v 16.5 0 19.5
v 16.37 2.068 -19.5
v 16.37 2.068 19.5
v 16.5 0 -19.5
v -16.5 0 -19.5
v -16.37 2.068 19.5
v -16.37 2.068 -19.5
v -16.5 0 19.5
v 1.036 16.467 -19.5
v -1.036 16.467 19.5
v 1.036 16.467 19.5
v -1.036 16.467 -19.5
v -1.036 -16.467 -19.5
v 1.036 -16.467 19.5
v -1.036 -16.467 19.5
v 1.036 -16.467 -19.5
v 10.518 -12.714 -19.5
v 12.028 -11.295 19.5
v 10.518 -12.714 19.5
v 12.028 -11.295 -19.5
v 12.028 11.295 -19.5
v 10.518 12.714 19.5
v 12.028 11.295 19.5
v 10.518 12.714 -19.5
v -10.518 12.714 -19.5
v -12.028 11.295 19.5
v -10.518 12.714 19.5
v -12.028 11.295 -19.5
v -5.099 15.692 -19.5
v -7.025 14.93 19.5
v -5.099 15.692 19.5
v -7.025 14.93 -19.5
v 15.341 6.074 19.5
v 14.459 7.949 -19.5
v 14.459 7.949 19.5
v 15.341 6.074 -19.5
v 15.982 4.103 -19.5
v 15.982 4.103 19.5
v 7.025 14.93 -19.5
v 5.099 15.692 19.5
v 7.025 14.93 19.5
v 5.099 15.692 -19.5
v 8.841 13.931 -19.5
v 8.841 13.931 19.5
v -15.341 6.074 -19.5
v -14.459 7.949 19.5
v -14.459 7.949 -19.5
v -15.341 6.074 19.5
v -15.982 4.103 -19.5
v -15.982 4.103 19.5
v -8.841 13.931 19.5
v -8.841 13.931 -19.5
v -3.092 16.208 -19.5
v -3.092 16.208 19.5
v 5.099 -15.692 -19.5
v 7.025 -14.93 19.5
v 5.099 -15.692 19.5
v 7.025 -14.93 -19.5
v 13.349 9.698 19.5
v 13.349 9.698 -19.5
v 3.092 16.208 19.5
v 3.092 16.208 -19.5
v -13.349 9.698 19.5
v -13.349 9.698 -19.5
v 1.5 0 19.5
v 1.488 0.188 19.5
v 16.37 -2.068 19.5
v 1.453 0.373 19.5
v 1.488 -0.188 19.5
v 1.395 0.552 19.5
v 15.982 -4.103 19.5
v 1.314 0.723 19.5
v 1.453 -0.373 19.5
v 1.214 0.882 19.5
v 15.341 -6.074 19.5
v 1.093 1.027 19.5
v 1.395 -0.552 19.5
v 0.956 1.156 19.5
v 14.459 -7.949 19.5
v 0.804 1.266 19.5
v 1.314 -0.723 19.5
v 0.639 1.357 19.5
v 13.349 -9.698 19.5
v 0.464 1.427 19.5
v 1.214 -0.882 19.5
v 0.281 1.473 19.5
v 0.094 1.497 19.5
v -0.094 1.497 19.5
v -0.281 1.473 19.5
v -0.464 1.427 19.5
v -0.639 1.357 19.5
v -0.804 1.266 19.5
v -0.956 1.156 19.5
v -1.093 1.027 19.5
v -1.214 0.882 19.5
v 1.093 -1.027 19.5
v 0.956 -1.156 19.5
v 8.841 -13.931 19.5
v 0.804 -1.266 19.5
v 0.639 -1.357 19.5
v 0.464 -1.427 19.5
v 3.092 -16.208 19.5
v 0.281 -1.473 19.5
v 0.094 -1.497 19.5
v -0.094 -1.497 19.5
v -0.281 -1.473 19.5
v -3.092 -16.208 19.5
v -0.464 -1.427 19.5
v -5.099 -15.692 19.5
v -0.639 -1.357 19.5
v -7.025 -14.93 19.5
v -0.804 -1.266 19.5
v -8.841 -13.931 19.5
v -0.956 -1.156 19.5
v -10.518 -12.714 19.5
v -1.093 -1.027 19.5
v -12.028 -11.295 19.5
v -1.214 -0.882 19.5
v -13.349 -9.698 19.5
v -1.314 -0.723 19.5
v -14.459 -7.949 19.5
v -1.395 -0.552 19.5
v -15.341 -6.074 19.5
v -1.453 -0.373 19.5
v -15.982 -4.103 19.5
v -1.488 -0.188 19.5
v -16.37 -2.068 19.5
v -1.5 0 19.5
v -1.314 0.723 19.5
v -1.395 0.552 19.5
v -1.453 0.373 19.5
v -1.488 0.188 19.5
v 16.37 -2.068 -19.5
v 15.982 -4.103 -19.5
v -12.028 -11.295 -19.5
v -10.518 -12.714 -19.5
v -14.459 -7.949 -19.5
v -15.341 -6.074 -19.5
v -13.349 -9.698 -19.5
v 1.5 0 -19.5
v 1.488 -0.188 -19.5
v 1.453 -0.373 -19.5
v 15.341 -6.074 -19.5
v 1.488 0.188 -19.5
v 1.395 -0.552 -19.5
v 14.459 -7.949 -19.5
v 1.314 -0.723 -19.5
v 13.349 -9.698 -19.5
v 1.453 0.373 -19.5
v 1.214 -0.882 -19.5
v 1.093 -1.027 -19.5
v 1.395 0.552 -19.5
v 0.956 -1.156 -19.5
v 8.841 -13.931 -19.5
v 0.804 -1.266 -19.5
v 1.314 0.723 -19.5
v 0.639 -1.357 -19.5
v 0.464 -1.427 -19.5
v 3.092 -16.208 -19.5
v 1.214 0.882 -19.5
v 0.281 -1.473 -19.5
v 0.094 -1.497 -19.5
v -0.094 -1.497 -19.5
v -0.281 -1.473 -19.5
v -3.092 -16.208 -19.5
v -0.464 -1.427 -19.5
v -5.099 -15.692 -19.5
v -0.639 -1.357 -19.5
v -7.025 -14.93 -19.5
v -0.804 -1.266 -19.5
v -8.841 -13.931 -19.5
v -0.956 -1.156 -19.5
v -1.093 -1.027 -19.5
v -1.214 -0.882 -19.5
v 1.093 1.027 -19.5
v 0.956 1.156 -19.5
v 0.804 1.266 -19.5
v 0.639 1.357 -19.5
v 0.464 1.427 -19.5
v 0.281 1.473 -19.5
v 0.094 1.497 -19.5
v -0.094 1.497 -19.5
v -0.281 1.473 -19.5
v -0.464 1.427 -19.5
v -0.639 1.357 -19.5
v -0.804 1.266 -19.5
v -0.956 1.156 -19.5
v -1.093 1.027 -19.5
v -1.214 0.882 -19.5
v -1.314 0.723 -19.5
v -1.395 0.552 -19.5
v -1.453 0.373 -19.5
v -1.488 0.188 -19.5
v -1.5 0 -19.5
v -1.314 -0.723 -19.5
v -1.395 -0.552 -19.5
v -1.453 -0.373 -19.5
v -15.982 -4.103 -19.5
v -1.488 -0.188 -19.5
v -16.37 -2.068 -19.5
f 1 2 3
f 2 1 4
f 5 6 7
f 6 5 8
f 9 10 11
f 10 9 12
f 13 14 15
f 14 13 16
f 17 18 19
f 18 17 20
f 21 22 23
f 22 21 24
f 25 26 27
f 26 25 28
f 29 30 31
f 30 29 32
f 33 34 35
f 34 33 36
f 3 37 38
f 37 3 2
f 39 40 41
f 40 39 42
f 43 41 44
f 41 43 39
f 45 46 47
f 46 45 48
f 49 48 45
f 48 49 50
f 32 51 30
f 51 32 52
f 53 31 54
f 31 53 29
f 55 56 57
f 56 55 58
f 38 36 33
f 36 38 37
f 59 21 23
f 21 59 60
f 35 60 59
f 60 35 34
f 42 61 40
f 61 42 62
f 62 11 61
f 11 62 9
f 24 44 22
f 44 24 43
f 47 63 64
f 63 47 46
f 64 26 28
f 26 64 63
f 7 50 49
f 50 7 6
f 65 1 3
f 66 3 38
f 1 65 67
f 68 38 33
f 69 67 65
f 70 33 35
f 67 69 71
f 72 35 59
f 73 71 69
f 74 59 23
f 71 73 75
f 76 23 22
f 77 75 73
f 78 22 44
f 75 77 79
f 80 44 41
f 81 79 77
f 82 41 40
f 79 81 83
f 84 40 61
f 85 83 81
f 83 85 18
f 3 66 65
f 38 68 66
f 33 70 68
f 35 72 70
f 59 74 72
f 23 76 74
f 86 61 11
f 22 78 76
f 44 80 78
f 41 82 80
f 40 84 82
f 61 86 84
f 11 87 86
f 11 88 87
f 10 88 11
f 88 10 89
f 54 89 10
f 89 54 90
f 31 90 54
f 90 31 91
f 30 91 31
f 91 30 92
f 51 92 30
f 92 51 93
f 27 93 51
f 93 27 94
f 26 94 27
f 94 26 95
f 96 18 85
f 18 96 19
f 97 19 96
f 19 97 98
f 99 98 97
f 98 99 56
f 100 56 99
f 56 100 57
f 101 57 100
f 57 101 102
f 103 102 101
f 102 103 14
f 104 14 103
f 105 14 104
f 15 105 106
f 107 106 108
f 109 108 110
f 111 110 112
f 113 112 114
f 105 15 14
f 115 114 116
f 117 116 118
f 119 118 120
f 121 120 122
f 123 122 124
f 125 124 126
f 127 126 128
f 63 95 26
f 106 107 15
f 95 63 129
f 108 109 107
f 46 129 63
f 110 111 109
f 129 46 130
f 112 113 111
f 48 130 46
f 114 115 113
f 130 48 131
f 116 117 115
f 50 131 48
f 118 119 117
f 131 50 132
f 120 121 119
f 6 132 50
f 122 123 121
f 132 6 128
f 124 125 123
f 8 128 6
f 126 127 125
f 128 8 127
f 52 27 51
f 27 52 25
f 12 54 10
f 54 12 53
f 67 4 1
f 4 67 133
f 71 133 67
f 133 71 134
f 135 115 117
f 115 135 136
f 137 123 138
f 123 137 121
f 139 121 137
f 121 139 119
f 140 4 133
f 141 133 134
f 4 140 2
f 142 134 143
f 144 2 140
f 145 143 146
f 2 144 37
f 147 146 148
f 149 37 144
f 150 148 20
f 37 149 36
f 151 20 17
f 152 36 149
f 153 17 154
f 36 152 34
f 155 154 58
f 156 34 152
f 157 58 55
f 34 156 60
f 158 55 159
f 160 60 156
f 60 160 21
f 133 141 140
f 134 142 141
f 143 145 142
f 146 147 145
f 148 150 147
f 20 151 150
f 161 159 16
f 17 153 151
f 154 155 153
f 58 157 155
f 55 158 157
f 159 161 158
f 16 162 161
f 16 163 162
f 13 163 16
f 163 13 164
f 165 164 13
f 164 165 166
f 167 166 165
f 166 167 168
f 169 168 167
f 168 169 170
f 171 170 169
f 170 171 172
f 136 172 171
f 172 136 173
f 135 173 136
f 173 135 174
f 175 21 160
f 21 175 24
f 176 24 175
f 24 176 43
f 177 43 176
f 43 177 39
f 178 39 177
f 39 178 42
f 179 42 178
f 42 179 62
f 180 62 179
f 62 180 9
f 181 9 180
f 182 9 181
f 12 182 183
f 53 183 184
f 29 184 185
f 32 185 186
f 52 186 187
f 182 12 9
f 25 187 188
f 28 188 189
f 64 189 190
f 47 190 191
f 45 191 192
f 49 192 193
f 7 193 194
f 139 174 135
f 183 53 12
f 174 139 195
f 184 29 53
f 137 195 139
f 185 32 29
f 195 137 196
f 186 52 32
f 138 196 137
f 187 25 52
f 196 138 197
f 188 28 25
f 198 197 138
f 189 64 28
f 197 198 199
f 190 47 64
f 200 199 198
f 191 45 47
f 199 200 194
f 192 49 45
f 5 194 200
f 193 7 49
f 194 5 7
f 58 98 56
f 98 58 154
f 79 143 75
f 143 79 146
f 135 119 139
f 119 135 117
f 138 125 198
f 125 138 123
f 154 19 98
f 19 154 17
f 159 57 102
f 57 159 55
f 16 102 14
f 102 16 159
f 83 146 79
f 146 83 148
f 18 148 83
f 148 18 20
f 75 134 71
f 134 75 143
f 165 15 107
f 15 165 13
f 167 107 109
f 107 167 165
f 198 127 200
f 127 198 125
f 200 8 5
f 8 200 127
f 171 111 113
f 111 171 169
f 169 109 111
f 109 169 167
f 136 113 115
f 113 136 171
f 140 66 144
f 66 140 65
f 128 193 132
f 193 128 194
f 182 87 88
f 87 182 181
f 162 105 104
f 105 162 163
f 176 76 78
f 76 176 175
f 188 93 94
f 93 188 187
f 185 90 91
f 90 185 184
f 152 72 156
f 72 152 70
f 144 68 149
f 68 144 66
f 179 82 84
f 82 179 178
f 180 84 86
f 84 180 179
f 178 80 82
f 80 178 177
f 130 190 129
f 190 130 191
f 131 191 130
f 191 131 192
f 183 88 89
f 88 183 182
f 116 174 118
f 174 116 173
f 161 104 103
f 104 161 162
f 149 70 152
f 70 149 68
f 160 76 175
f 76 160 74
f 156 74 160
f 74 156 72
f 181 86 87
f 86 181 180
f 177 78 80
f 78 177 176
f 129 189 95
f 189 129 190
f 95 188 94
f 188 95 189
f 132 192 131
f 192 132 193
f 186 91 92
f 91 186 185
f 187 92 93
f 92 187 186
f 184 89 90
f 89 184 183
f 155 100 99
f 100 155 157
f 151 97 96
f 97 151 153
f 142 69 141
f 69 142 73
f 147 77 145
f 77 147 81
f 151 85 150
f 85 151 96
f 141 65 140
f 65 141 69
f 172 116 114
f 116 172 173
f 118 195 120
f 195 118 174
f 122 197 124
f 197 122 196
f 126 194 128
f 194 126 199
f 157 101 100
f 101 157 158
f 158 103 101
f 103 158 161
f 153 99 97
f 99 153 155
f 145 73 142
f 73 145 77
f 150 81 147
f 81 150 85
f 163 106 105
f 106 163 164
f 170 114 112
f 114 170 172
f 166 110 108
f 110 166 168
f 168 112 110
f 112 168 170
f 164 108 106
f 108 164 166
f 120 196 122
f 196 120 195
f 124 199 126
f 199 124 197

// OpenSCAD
$fn = 50;


difference() {
	union() {
		translate(v = [0, 0, -19.5000000000]) {
			cylinder(h = 39, r = 16.5000000000);
		}
	}
	union() {
		translate(v = [0, 0, -100.0000000000]) {
			cylinder(h = 200, r = 1.5000000000);
		}
	}
}
